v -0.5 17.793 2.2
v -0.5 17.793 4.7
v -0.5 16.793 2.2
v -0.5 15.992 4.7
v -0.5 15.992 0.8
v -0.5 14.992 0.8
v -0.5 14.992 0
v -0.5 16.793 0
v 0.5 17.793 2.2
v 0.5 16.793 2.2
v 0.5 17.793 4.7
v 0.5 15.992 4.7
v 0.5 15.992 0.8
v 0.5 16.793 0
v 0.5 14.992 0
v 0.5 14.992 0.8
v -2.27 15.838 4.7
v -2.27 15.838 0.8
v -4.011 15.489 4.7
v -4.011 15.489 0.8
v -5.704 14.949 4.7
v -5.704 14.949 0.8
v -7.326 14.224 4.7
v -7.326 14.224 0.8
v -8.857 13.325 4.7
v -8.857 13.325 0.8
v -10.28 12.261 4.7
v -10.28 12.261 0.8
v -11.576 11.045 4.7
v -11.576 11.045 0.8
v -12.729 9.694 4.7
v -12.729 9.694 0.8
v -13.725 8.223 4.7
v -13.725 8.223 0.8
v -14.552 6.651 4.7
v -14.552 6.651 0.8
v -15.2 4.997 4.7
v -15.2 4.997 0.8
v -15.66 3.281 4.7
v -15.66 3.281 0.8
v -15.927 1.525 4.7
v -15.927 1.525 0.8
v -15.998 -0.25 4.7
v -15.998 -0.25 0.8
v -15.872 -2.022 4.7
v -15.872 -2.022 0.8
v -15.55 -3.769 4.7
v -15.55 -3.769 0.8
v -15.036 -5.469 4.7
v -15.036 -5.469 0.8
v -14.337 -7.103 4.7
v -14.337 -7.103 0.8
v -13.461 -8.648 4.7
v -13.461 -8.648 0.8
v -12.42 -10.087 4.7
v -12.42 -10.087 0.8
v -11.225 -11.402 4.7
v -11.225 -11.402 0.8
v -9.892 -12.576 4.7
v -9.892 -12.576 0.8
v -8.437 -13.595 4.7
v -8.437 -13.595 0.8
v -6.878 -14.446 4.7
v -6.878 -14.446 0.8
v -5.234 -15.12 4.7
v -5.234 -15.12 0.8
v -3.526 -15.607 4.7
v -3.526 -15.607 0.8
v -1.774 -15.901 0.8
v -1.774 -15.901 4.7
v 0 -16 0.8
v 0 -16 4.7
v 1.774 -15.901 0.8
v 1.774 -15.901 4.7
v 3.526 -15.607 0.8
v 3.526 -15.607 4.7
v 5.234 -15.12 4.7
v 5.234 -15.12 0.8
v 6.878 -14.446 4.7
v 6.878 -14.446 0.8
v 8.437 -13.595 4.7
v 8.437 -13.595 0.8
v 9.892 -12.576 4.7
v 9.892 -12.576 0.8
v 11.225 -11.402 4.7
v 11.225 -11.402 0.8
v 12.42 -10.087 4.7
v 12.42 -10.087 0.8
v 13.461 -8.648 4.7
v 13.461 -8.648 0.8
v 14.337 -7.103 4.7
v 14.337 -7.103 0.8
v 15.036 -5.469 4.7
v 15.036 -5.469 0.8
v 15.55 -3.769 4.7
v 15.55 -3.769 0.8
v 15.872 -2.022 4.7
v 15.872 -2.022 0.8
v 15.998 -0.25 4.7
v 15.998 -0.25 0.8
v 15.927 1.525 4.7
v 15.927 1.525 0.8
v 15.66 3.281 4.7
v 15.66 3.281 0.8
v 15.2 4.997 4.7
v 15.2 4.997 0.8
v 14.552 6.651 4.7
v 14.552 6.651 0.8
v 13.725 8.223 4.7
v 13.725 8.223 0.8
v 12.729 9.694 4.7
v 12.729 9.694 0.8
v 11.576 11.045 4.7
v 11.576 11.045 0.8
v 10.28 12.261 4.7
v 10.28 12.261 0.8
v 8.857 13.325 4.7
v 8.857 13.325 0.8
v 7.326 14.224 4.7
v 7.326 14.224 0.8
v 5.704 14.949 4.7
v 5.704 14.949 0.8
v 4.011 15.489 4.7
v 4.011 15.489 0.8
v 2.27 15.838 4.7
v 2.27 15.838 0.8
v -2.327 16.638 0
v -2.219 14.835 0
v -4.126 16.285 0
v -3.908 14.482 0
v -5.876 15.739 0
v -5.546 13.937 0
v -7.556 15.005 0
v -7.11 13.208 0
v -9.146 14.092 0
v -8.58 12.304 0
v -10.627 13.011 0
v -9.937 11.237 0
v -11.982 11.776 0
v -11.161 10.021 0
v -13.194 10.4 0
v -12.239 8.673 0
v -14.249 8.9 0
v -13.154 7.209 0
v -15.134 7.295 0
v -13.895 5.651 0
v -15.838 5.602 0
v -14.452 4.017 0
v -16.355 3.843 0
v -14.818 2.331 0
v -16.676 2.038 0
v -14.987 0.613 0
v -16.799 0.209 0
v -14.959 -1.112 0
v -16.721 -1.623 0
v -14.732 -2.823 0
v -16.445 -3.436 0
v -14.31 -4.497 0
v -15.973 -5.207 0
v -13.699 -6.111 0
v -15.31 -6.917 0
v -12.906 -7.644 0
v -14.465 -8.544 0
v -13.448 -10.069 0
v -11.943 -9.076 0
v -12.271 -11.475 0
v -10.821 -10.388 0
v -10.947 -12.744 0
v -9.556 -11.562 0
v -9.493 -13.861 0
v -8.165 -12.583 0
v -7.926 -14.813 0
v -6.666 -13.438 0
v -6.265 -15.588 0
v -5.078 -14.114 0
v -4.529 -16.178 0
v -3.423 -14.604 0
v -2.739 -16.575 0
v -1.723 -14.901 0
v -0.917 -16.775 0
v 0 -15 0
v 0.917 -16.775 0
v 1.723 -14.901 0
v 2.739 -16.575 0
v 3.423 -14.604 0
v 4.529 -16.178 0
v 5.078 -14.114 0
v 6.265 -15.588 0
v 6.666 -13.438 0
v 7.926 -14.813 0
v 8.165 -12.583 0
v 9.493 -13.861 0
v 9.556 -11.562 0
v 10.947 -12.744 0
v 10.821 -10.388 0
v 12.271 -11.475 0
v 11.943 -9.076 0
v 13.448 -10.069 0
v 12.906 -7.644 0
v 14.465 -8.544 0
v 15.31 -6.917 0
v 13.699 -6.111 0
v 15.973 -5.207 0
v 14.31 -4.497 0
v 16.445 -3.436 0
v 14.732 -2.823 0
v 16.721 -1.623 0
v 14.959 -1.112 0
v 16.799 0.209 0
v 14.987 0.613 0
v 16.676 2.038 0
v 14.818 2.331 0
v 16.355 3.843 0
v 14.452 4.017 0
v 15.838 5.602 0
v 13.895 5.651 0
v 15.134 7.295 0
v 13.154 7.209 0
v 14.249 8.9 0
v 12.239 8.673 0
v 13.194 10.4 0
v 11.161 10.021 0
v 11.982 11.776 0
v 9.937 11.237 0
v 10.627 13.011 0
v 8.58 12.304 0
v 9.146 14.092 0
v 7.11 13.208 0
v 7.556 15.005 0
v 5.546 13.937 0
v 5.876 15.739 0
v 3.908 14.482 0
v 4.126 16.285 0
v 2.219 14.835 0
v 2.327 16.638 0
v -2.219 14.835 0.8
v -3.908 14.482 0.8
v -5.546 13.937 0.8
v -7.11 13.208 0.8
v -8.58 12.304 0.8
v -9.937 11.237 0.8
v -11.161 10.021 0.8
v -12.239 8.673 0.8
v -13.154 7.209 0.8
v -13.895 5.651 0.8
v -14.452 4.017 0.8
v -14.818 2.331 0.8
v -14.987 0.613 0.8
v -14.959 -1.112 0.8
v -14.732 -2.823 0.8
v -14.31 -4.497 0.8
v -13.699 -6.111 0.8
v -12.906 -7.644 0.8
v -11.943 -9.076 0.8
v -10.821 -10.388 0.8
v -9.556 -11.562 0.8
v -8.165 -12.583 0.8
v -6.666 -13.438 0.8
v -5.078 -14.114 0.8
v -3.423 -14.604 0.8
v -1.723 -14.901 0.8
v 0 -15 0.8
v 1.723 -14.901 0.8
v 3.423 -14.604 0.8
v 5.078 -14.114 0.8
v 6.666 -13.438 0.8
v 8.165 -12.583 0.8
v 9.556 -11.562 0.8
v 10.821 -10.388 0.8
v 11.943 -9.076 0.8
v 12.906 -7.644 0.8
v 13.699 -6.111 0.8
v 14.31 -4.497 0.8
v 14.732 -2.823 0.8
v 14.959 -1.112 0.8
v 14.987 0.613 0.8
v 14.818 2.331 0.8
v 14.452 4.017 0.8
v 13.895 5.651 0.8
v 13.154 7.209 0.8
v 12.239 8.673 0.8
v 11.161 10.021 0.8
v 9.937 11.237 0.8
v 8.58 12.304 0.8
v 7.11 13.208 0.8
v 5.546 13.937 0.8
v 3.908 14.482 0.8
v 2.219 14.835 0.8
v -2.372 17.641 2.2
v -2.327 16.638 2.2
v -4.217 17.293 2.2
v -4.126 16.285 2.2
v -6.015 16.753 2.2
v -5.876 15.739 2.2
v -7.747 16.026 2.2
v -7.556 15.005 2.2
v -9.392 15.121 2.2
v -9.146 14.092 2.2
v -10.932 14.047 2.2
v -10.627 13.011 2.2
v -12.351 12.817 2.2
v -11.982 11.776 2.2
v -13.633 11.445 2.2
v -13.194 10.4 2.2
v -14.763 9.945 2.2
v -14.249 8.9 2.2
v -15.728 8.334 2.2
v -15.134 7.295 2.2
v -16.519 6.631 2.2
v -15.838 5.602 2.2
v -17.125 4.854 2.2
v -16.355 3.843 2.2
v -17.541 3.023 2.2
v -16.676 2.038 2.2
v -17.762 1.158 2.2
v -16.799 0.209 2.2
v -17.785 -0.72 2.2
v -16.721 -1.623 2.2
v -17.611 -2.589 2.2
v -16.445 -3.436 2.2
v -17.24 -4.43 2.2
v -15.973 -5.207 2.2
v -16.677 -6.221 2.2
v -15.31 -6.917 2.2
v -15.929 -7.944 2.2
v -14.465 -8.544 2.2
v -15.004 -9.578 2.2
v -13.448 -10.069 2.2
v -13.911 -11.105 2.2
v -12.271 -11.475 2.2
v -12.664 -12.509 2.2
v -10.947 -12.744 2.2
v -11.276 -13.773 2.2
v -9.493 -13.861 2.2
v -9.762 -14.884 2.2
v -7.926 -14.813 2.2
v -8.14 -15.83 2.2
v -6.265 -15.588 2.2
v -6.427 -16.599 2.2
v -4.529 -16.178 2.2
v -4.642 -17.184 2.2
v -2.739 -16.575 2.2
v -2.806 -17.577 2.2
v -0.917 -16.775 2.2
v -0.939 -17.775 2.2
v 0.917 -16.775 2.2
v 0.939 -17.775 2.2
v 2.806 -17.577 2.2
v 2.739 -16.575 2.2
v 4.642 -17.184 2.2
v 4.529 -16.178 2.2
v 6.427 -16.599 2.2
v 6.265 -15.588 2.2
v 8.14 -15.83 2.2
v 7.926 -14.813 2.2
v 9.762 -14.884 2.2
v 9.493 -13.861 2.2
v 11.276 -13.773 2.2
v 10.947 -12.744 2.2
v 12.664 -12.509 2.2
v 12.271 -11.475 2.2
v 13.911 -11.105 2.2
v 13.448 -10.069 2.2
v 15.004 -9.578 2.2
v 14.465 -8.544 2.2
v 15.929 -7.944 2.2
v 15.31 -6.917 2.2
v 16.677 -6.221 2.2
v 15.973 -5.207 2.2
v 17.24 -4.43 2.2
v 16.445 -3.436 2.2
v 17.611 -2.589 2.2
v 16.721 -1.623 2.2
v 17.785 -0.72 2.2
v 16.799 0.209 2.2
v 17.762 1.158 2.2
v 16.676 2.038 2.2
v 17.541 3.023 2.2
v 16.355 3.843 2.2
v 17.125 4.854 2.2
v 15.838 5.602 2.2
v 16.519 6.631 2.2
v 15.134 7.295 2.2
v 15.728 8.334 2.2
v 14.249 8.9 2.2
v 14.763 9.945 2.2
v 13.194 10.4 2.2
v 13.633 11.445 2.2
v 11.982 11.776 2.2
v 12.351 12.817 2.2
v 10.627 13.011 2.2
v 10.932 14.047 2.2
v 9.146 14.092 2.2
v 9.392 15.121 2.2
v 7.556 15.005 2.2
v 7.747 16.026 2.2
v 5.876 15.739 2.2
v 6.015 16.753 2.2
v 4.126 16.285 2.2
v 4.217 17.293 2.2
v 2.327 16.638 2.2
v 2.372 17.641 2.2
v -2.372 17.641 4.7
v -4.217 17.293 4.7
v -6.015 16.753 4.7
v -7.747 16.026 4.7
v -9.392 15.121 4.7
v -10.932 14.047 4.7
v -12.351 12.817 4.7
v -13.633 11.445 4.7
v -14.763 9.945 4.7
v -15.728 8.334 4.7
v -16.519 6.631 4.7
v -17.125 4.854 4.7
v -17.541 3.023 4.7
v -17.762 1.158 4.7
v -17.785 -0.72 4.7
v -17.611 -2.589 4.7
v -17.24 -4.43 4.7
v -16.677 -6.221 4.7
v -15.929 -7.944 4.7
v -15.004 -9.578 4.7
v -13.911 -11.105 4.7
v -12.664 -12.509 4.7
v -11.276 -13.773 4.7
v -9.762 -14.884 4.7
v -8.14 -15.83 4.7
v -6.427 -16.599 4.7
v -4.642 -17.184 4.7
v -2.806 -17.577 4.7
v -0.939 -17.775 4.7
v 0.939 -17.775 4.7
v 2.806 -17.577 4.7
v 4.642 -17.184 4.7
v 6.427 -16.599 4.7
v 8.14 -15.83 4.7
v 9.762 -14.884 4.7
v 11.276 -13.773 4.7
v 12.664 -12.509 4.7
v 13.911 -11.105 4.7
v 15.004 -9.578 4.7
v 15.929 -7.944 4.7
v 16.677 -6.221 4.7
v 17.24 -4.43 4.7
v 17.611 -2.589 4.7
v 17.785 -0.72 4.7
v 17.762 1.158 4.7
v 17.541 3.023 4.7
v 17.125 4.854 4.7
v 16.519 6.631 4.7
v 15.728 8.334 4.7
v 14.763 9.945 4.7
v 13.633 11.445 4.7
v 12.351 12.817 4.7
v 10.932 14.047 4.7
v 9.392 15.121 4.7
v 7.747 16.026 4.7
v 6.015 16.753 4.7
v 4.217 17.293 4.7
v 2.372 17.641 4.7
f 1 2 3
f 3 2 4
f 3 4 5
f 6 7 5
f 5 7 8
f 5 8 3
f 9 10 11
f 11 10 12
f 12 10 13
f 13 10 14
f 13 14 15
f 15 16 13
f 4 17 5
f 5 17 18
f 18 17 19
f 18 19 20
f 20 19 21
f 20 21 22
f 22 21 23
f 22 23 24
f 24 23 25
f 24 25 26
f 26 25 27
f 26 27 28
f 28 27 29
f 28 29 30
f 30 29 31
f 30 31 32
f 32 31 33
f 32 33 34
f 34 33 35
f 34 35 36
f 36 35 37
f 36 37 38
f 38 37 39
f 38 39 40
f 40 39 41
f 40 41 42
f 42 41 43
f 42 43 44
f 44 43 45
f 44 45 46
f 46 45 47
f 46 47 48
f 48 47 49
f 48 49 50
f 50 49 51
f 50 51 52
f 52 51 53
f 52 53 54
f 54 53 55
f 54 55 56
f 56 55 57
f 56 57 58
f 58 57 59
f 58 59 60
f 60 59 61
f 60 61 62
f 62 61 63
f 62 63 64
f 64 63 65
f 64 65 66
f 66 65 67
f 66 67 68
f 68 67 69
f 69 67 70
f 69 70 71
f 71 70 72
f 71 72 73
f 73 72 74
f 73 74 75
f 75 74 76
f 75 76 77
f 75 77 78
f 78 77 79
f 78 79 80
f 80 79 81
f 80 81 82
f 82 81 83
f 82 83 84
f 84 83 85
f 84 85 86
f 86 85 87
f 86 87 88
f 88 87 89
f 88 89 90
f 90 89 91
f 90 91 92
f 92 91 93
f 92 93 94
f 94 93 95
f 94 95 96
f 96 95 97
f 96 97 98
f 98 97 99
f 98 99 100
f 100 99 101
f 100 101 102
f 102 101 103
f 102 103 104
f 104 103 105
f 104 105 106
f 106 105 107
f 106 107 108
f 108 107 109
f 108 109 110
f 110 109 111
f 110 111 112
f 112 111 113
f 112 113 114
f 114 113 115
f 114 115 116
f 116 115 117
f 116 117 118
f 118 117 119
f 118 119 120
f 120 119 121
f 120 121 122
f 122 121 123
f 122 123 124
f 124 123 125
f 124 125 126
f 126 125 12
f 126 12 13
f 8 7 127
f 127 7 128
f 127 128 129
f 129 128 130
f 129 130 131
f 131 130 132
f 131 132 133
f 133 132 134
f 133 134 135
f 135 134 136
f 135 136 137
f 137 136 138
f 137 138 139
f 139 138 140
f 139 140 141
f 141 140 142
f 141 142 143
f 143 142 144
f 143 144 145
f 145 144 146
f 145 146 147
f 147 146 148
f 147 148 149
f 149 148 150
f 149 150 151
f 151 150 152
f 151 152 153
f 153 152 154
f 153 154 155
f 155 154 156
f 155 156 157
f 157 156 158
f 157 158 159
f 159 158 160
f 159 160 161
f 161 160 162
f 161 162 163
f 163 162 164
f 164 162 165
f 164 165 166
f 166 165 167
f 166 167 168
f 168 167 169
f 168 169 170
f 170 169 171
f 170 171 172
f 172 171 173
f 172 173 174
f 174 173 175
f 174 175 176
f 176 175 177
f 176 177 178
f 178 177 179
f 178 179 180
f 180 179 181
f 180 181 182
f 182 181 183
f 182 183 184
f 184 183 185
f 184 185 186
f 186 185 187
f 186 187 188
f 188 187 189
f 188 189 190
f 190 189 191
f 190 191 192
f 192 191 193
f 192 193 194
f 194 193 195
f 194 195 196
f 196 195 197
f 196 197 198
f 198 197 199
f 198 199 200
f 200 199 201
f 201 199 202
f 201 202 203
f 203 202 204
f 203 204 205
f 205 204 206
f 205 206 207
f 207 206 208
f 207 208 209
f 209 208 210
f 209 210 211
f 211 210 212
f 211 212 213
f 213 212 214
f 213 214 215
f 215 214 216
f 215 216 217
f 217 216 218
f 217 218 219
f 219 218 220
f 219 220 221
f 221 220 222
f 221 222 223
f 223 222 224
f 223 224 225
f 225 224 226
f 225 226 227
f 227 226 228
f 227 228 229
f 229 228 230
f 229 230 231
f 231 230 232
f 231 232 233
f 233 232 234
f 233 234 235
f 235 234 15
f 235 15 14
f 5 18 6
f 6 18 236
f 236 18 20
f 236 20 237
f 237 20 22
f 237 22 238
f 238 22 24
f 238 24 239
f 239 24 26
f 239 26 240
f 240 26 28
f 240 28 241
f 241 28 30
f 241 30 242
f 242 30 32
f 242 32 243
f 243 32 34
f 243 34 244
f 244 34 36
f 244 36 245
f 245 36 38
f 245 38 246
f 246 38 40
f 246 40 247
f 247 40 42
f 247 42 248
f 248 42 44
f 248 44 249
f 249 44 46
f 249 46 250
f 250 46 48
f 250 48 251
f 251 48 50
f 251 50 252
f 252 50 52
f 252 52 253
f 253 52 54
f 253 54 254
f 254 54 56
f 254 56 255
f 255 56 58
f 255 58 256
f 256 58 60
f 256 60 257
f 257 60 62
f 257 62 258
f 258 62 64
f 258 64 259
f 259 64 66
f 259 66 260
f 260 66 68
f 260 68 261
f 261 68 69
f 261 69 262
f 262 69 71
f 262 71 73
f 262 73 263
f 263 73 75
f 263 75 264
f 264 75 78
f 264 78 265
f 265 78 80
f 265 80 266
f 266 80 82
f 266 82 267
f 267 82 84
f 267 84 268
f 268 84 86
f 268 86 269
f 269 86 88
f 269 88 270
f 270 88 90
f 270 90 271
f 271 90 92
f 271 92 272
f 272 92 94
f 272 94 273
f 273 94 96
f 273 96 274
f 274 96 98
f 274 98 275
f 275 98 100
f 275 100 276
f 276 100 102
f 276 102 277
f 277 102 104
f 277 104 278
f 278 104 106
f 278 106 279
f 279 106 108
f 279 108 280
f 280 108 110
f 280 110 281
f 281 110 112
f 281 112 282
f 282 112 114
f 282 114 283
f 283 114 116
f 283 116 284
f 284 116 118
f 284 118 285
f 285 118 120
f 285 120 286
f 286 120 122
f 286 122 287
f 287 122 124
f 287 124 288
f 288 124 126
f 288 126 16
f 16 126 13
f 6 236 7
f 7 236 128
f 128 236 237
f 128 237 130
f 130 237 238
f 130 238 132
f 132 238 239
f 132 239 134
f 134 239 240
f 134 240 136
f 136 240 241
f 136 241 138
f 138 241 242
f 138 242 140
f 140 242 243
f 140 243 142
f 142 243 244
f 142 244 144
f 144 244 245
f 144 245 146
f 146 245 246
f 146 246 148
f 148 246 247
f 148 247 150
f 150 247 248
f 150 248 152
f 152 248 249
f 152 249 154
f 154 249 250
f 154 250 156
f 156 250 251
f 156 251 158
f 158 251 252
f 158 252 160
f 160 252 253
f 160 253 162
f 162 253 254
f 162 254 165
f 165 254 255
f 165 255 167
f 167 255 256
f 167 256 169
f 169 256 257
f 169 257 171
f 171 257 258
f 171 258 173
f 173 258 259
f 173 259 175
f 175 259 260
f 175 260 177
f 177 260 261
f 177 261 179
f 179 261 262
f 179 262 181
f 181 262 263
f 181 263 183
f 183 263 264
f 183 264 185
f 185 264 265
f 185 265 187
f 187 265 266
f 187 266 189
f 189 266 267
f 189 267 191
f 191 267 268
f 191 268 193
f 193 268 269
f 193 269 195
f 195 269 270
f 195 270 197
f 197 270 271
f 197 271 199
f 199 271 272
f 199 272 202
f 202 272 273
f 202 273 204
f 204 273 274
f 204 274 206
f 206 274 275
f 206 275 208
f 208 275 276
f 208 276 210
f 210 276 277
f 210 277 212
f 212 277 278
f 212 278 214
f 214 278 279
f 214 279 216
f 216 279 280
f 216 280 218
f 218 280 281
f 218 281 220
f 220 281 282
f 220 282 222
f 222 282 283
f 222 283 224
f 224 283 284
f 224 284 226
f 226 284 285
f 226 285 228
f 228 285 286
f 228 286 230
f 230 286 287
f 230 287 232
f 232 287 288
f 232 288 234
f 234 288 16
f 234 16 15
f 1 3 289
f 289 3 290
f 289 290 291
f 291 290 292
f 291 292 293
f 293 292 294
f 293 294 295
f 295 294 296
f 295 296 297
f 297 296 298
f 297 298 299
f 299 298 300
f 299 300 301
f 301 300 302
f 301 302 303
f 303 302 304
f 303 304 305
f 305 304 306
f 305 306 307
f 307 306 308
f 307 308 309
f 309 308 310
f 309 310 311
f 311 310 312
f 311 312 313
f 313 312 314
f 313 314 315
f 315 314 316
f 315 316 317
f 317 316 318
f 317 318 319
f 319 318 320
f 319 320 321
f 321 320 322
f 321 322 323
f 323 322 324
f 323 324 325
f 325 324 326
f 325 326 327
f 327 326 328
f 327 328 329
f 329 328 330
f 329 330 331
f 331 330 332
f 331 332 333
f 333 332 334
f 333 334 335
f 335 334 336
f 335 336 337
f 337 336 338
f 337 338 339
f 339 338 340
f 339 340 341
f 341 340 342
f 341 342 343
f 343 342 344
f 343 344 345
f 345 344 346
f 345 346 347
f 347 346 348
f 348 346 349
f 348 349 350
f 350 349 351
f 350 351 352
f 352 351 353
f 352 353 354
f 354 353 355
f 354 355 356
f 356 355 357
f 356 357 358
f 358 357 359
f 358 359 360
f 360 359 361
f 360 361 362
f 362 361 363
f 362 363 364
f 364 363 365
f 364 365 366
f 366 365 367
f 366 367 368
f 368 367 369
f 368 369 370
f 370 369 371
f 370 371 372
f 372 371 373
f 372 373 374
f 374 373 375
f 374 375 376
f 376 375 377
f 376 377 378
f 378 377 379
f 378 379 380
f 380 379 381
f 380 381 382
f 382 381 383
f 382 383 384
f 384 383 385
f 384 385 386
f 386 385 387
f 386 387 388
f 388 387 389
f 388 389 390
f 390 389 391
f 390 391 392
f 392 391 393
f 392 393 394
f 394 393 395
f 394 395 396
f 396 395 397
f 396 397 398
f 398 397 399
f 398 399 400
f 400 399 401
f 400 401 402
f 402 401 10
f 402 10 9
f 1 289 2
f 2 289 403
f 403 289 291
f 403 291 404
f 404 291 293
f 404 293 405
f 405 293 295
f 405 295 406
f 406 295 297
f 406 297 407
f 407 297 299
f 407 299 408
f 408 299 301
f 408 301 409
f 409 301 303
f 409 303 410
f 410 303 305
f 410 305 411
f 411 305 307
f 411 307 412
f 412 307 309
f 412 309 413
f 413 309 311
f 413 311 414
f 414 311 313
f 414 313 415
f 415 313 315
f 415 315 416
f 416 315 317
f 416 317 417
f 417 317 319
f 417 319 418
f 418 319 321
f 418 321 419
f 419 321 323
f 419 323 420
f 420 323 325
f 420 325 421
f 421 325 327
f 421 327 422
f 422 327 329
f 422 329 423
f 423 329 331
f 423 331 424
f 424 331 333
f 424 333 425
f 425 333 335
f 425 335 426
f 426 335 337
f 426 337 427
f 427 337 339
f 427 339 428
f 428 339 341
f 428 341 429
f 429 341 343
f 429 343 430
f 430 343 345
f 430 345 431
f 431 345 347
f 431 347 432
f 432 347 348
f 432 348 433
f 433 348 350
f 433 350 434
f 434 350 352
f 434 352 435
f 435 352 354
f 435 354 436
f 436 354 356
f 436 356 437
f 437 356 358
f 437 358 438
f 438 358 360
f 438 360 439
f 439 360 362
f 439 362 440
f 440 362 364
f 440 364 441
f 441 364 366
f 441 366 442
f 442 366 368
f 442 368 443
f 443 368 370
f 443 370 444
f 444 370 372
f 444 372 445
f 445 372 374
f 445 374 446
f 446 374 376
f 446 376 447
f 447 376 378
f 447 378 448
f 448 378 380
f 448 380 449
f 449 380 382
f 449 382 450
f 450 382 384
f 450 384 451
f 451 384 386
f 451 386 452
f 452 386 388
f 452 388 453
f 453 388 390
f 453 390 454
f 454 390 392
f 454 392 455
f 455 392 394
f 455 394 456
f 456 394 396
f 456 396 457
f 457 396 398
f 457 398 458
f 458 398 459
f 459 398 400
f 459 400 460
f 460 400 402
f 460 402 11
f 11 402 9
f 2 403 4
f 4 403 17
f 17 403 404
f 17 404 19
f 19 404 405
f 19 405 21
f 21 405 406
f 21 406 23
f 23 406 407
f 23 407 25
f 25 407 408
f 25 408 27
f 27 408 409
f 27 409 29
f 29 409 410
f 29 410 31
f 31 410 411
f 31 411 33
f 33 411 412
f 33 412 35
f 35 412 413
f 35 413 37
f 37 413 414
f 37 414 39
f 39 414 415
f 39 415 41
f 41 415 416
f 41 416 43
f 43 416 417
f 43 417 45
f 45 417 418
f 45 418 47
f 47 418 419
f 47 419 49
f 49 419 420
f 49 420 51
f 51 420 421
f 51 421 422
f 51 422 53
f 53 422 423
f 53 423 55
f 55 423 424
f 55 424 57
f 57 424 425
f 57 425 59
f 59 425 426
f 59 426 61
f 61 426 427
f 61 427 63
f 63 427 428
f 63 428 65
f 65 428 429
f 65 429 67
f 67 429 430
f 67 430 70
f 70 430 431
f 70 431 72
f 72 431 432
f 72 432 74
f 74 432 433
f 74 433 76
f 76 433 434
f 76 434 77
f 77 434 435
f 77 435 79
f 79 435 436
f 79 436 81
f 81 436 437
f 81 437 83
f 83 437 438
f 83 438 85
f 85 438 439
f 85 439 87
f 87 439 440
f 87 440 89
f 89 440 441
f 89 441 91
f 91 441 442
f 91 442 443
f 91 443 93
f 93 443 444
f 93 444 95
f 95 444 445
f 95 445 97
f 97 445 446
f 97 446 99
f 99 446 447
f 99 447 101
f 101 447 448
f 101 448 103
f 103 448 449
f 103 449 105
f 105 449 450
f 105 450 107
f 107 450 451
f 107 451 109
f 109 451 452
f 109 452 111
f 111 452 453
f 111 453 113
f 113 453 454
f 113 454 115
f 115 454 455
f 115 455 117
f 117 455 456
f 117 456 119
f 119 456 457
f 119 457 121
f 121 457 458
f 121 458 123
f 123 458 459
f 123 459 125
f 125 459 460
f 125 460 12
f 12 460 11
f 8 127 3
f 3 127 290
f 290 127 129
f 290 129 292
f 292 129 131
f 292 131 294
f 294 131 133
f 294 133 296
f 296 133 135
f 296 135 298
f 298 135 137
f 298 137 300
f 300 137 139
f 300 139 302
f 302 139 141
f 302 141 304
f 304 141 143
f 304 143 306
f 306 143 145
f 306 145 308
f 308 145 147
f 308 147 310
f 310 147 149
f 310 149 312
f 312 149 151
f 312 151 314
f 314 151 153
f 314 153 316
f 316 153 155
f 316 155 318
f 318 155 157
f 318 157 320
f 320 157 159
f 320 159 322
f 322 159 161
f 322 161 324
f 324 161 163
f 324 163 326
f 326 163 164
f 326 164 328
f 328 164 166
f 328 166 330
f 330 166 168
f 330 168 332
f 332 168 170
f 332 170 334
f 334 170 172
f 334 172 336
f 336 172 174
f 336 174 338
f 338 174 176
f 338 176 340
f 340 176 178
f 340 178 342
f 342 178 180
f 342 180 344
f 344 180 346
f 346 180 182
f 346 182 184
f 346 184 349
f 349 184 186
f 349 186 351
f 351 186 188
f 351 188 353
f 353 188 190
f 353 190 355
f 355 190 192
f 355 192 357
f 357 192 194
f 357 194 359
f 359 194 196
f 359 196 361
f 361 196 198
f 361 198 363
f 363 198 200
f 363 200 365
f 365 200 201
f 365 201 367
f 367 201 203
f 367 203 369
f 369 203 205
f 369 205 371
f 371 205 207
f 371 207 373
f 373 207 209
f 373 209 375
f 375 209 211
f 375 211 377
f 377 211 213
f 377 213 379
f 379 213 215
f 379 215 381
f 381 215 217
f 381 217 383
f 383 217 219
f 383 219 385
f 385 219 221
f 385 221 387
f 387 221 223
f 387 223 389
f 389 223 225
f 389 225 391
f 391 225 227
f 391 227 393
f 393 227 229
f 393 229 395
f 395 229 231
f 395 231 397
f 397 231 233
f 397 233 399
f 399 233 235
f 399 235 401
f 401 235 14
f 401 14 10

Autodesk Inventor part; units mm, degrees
ref_plane "YZ Plane" through (0, 0, 0) normal (1, 0, 0) x (0, 1, 0)
ref_plane "XZ Plane" through (0, 0, 0) normal (0, 1, 0) x (-1, 0, 0)
ref_plane "XY Plane" through (0, 0, 0) normal (0, 0, 1) x (1, 0, 0)
sketch "Sketch1" plane through (0, 0, 0) normal (0, 0, 1) x (1, 0, 0)
  circle A0 centre (0, 0) radius 16.8
  circle A1 centre (0, 0) radius 15
  circle A2 centre (0, 0) radius 17.8
  circle A3 centre (0, 0) radius 16
  dimension "d0" = 33.6
  dimension "d1" = 30
  dimension "d2" = 35.6
  dimension "d3" = 32
extrude "Extrusion1" add sketch "Sketch1" along normal blind 0.8 contours A3
extrude "Extrusion2" add sketch "Sketch1" along normal blind 3.2 contours A0
sketch "Sketch2" plane through (0, 0, 3.2) normal (0, 0, 1) x (1, 0, 0)
  circle A0 centre (0, 0) radius 17.8 projected
  circle A1 centre (0, 0) radius 16 projected
extrude "Extrusion3" add sketch "Sketch2" along normal blind 1.5
extrude "Extrusion5" add sketch "Sketch2" against normal blind 1
sketch "Sketch3" plane through (0, 0, 4.7) normal (0, 0, 1) x (1, 0, 0)
  line L0 (0.5, 8) -> (-0.5, 8)
  line L1 (-0.5, 8) -> (-0.5, 24)
  line L2 (-0.5, 24) -> (0.5, 24)
  line L3 (0.5, 24) -> (0.5, 8)
  circle A0 centre (0, 0) radius 16 projected
  line L4 (0.5, 8) -> (-0.5, 24) construction
  line L5 (-0.5, 8) -> (0.5, 24) construction
  point P0 (0, 16)
  dimension "d10" = 1
  dimension "d11" = 16
extrude "Extrusion4" cut sketch "Sketch3" against normal blind 10 contours L0 L1 A0 L3 | A0 L1 L2 L3 picked at (0.0556, 10.6664)
properties part number "32to36mm-FilterAdapter"
